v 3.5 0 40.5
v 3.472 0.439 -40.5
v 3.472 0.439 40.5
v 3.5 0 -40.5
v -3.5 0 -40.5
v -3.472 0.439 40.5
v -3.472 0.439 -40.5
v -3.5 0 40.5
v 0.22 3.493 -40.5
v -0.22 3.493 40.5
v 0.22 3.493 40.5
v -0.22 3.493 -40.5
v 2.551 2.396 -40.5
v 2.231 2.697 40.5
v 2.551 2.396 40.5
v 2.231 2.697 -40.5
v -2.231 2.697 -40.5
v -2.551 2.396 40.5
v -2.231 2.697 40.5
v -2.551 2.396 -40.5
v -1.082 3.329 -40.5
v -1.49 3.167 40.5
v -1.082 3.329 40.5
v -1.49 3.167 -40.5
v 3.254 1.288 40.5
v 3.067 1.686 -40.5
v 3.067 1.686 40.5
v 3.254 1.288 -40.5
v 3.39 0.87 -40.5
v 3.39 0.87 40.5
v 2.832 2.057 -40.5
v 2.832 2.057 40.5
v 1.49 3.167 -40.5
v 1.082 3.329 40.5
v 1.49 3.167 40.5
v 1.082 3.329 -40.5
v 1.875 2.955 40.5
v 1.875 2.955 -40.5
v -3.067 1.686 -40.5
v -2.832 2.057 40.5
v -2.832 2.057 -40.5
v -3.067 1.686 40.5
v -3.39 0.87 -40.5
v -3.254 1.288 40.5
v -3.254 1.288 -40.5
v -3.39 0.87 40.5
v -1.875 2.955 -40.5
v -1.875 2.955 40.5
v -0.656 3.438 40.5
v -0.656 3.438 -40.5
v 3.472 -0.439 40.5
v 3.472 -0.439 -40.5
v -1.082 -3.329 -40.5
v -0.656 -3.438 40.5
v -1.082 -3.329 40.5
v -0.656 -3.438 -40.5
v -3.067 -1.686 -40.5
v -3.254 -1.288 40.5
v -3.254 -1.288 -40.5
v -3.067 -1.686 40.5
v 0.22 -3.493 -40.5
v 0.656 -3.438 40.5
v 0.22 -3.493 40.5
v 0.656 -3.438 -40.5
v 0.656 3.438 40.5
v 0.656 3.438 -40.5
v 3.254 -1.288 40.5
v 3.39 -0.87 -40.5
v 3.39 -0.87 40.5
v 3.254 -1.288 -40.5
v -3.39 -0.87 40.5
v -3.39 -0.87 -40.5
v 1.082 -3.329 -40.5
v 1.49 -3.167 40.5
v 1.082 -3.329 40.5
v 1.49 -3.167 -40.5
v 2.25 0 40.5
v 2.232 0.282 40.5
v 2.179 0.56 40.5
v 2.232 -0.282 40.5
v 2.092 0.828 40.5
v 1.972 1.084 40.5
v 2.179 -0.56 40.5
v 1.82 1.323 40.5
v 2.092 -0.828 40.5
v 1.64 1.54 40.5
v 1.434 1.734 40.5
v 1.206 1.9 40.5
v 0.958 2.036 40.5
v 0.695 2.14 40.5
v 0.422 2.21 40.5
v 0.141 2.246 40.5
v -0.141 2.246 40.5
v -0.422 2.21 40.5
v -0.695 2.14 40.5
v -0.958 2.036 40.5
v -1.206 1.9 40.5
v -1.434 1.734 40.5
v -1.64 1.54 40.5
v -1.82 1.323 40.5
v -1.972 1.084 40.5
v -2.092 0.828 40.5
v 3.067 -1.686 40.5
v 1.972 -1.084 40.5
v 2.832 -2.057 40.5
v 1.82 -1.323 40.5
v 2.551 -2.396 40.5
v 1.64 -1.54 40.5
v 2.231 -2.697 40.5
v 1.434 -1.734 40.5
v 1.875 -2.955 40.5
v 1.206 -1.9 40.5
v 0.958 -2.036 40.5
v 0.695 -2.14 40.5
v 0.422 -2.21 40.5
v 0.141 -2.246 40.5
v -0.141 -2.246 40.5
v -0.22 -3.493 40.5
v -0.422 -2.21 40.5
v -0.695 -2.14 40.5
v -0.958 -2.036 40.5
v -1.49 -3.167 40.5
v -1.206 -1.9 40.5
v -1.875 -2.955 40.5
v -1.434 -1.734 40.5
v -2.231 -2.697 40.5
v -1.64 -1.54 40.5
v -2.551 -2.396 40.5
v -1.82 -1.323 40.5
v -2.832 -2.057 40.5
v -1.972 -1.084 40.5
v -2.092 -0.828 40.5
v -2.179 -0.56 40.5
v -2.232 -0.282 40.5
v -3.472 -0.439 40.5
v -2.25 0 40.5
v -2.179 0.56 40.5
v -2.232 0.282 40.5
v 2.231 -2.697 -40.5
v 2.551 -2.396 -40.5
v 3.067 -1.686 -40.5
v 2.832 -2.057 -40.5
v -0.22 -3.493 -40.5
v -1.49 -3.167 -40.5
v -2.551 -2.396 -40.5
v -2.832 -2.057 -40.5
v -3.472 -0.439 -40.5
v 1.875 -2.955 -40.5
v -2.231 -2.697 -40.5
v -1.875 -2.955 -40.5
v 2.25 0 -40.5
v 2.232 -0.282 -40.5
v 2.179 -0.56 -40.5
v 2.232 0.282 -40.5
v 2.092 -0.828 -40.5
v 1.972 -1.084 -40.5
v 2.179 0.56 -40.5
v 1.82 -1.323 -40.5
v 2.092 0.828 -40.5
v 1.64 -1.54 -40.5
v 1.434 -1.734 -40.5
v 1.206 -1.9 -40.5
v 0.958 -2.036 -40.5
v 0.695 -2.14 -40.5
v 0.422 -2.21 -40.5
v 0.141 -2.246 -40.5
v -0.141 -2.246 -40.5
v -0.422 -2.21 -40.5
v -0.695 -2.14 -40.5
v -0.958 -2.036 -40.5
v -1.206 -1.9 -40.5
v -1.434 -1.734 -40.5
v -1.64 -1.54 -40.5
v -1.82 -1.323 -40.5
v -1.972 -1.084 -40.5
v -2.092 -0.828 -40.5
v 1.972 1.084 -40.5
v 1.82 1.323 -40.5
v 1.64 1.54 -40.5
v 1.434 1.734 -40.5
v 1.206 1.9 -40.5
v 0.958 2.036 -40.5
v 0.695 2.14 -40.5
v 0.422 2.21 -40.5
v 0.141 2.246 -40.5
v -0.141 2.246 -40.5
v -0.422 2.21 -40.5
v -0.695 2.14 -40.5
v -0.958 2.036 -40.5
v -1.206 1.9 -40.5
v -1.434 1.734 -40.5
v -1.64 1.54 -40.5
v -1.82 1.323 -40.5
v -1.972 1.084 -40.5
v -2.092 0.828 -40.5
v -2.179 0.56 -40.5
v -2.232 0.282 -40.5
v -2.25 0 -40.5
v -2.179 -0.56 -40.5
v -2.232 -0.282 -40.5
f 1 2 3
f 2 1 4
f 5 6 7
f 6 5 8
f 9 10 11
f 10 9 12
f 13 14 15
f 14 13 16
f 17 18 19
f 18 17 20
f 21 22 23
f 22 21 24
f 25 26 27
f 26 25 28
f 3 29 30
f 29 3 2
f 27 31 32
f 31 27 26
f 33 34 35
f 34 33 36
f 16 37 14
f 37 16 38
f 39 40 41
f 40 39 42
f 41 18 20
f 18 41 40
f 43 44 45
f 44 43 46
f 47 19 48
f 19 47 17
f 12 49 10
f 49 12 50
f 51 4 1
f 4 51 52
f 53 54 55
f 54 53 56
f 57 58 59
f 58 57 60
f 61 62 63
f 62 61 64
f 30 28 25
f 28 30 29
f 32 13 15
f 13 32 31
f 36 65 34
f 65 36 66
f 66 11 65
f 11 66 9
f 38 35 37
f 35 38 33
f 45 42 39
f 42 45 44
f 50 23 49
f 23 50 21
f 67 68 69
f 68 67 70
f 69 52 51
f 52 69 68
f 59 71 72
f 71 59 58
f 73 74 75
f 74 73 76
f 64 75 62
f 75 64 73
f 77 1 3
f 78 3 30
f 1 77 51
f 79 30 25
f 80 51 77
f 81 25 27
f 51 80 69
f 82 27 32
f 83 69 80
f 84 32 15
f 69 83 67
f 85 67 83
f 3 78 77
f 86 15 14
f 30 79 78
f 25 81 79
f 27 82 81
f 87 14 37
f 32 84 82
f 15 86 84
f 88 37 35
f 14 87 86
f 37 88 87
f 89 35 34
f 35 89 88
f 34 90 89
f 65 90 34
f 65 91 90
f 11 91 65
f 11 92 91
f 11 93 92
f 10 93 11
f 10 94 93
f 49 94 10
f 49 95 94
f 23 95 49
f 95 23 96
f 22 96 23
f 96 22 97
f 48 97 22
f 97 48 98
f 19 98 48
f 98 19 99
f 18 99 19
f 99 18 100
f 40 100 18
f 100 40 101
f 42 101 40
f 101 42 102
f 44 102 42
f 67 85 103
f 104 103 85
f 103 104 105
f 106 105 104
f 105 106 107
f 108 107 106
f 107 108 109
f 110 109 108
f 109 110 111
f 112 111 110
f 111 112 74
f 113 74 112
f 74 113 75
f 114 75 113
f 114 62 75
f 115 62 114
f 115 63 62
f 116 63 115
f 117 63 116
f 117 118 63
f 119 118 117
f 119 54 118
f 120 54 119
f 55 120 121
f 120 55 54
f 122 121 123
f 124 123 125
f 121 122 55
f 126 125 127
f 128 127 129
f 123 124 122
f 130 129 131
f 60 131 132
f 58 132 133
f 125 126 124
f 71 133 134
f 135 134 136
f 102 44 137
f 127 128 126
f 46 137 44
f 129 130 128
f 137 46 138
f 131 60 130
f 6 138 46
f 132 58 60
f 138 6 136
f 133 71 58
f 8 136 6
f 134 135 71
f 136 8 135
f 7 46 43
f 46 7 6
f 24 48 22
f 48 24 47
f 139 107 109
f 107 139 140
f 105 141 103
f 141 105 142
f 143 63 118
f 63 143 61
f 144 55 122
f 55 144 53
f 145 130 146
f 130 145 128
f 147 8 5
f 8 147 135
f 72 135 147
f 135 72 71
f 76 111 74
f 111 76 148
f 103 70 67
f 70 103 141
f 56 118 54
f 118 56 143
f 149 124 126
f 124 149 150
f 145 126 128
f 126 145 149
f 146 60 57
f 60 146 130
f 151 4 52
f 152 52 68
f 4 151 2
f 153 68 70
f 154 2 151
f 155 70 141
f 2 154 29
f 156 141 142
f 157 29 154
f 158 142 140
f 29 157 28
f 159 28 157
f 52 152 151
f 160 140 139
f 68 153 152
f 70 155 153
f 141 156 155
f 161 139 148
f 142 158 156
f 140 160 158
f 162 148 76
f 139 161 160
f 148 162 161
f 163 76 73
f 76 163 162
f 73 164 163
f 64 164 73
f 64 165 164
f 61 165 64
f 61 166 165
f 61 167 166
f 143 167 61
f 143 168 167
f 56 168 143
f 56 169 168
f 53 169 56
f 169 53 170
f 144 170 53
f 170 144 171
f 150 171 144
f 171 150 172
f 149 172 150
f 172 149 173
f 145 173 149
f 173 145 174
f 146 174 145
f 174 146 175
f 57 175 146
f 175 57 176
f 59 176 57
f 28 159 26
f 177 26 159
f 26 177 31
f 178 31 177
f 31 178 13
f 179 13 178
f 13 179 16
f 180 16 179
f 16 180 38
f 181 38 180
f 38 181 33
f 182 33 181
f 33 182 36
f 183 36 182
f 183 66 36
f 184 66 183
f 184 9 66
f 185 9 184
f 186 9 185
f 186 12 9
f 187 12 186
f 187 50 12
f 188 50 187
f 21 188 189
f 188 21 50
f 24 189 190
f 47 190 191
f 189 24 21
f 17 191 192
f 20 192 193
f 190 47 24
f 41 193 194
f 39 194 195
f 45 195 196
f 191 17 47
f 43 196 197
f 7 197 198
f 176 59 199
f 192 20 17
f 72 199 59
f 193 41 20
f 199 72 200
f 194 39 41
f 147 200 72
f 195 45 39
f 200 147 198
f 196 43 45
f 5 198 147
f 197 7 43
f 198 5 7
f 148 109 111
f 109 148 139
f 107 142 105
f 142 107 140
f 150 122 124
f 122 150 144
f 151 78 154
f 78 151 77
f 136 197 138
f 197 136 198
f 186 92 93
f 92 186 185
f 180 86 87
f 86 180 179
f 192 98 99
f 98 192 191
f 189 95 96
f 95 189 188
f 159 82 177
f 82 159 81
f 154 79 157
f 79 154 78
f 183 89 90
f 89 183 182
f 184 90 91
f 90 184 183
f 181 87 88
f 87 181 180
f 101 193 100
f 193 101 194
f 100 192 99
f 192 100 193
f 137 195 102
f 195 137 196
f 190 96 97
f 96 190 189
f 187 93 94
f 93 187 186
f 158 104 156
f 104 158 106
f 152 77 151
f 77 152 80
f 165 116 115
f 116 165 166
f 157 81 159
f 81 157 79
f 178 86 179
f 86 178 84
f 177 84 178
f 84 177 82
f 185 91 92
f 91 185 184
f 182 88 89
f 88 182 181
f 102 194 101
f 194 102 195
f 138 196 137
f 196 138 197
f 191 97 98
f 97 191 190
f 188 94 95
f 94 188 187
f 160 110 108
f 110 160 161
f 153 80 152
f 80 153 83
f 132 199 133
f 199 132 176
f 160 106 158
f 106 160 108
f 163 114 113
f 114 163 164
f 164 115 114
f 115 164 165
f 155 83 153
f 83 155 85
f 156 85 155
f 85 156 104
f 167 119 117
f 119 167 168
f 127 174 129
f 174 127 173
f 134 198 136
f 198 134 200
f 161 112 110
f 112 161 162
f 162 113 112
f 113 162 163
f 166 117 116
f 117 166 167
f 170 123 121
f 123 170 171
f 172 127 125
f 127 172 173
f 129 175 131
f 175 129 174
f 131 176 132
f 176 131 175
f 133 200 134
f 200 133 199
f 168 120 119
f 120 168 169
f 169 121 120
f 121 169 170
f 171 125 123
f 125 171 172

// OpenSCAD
$fn = 50;


difference() {
	union() {
		translate(v = [0, 0, -40.5000000000]) {
			cylinder(h = 81, r = 3.5000000000);
		}
	}
	union() {
		translate(v = [0, 0, -100.0000000000]) {
			cylinder(h = 200, r = 2.2500000000);
		}
	}
}
